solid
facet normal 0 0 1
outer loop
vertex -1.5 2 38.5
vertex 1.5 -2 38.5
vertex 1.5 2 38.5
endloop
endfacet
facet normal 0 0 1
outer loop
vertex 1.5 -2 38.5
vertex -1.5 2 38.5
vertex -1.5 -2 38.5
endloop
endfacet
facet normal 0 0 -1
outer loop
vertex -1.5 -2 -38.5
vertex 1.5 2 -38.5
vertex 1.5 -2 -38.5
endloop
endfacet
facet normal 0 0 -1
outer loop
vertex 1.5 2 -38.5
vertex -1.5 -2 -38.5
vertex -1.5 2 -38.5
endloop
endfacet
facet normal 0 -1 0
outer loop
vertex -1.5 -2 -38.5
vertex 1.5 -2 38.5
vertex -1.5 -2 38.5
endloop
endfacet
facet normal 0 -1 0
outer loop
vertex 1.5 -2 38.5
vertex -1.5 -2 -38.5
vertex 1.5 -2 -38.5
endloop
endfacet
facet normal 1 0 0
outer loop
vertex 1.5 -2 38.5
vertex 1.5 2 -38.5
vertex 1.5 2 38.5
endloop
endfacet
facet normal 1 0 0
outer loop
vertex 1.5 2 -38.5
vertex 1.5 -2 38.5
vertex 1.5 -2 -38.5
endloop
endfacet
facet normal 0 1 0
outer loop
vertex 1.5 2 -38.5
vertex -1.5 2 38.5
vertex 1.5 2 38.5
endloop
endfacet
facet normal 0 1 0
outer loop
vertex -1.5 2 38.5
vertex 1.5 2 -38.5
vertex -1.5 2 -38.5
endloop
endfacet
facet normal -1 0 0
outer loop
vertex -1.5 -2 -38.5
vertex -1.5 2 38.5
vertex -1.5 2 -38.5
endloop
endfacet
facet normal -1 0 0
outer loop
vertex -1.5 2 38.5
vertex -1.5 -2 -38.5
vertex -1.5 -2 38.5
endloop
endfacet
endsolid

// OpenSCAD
// file: CUBX0006/scad/CUBX0006.scad
// Example : CUBX0006-BLK-L67W796H897 
// Schema : CUBX0006-BLK-L<Length(mm)>W<Width(mm)>H<Height(mm)
// Description : This function is invoked directly from hardware set : CUBX0006-BLK.
module CUBX0006_BLK(length,width,height)
{
    CUBX0006_hardware=[length,width,height]; // Defines block dimensions.
    cube(CUBX0006_hardware,true); // Creates block mesh with said dimensions.
}
// main file
use <CUBX0006/scad/CUBX0006.scad>;

CUBX0006_BLK(length=3, height=77, width=4);
